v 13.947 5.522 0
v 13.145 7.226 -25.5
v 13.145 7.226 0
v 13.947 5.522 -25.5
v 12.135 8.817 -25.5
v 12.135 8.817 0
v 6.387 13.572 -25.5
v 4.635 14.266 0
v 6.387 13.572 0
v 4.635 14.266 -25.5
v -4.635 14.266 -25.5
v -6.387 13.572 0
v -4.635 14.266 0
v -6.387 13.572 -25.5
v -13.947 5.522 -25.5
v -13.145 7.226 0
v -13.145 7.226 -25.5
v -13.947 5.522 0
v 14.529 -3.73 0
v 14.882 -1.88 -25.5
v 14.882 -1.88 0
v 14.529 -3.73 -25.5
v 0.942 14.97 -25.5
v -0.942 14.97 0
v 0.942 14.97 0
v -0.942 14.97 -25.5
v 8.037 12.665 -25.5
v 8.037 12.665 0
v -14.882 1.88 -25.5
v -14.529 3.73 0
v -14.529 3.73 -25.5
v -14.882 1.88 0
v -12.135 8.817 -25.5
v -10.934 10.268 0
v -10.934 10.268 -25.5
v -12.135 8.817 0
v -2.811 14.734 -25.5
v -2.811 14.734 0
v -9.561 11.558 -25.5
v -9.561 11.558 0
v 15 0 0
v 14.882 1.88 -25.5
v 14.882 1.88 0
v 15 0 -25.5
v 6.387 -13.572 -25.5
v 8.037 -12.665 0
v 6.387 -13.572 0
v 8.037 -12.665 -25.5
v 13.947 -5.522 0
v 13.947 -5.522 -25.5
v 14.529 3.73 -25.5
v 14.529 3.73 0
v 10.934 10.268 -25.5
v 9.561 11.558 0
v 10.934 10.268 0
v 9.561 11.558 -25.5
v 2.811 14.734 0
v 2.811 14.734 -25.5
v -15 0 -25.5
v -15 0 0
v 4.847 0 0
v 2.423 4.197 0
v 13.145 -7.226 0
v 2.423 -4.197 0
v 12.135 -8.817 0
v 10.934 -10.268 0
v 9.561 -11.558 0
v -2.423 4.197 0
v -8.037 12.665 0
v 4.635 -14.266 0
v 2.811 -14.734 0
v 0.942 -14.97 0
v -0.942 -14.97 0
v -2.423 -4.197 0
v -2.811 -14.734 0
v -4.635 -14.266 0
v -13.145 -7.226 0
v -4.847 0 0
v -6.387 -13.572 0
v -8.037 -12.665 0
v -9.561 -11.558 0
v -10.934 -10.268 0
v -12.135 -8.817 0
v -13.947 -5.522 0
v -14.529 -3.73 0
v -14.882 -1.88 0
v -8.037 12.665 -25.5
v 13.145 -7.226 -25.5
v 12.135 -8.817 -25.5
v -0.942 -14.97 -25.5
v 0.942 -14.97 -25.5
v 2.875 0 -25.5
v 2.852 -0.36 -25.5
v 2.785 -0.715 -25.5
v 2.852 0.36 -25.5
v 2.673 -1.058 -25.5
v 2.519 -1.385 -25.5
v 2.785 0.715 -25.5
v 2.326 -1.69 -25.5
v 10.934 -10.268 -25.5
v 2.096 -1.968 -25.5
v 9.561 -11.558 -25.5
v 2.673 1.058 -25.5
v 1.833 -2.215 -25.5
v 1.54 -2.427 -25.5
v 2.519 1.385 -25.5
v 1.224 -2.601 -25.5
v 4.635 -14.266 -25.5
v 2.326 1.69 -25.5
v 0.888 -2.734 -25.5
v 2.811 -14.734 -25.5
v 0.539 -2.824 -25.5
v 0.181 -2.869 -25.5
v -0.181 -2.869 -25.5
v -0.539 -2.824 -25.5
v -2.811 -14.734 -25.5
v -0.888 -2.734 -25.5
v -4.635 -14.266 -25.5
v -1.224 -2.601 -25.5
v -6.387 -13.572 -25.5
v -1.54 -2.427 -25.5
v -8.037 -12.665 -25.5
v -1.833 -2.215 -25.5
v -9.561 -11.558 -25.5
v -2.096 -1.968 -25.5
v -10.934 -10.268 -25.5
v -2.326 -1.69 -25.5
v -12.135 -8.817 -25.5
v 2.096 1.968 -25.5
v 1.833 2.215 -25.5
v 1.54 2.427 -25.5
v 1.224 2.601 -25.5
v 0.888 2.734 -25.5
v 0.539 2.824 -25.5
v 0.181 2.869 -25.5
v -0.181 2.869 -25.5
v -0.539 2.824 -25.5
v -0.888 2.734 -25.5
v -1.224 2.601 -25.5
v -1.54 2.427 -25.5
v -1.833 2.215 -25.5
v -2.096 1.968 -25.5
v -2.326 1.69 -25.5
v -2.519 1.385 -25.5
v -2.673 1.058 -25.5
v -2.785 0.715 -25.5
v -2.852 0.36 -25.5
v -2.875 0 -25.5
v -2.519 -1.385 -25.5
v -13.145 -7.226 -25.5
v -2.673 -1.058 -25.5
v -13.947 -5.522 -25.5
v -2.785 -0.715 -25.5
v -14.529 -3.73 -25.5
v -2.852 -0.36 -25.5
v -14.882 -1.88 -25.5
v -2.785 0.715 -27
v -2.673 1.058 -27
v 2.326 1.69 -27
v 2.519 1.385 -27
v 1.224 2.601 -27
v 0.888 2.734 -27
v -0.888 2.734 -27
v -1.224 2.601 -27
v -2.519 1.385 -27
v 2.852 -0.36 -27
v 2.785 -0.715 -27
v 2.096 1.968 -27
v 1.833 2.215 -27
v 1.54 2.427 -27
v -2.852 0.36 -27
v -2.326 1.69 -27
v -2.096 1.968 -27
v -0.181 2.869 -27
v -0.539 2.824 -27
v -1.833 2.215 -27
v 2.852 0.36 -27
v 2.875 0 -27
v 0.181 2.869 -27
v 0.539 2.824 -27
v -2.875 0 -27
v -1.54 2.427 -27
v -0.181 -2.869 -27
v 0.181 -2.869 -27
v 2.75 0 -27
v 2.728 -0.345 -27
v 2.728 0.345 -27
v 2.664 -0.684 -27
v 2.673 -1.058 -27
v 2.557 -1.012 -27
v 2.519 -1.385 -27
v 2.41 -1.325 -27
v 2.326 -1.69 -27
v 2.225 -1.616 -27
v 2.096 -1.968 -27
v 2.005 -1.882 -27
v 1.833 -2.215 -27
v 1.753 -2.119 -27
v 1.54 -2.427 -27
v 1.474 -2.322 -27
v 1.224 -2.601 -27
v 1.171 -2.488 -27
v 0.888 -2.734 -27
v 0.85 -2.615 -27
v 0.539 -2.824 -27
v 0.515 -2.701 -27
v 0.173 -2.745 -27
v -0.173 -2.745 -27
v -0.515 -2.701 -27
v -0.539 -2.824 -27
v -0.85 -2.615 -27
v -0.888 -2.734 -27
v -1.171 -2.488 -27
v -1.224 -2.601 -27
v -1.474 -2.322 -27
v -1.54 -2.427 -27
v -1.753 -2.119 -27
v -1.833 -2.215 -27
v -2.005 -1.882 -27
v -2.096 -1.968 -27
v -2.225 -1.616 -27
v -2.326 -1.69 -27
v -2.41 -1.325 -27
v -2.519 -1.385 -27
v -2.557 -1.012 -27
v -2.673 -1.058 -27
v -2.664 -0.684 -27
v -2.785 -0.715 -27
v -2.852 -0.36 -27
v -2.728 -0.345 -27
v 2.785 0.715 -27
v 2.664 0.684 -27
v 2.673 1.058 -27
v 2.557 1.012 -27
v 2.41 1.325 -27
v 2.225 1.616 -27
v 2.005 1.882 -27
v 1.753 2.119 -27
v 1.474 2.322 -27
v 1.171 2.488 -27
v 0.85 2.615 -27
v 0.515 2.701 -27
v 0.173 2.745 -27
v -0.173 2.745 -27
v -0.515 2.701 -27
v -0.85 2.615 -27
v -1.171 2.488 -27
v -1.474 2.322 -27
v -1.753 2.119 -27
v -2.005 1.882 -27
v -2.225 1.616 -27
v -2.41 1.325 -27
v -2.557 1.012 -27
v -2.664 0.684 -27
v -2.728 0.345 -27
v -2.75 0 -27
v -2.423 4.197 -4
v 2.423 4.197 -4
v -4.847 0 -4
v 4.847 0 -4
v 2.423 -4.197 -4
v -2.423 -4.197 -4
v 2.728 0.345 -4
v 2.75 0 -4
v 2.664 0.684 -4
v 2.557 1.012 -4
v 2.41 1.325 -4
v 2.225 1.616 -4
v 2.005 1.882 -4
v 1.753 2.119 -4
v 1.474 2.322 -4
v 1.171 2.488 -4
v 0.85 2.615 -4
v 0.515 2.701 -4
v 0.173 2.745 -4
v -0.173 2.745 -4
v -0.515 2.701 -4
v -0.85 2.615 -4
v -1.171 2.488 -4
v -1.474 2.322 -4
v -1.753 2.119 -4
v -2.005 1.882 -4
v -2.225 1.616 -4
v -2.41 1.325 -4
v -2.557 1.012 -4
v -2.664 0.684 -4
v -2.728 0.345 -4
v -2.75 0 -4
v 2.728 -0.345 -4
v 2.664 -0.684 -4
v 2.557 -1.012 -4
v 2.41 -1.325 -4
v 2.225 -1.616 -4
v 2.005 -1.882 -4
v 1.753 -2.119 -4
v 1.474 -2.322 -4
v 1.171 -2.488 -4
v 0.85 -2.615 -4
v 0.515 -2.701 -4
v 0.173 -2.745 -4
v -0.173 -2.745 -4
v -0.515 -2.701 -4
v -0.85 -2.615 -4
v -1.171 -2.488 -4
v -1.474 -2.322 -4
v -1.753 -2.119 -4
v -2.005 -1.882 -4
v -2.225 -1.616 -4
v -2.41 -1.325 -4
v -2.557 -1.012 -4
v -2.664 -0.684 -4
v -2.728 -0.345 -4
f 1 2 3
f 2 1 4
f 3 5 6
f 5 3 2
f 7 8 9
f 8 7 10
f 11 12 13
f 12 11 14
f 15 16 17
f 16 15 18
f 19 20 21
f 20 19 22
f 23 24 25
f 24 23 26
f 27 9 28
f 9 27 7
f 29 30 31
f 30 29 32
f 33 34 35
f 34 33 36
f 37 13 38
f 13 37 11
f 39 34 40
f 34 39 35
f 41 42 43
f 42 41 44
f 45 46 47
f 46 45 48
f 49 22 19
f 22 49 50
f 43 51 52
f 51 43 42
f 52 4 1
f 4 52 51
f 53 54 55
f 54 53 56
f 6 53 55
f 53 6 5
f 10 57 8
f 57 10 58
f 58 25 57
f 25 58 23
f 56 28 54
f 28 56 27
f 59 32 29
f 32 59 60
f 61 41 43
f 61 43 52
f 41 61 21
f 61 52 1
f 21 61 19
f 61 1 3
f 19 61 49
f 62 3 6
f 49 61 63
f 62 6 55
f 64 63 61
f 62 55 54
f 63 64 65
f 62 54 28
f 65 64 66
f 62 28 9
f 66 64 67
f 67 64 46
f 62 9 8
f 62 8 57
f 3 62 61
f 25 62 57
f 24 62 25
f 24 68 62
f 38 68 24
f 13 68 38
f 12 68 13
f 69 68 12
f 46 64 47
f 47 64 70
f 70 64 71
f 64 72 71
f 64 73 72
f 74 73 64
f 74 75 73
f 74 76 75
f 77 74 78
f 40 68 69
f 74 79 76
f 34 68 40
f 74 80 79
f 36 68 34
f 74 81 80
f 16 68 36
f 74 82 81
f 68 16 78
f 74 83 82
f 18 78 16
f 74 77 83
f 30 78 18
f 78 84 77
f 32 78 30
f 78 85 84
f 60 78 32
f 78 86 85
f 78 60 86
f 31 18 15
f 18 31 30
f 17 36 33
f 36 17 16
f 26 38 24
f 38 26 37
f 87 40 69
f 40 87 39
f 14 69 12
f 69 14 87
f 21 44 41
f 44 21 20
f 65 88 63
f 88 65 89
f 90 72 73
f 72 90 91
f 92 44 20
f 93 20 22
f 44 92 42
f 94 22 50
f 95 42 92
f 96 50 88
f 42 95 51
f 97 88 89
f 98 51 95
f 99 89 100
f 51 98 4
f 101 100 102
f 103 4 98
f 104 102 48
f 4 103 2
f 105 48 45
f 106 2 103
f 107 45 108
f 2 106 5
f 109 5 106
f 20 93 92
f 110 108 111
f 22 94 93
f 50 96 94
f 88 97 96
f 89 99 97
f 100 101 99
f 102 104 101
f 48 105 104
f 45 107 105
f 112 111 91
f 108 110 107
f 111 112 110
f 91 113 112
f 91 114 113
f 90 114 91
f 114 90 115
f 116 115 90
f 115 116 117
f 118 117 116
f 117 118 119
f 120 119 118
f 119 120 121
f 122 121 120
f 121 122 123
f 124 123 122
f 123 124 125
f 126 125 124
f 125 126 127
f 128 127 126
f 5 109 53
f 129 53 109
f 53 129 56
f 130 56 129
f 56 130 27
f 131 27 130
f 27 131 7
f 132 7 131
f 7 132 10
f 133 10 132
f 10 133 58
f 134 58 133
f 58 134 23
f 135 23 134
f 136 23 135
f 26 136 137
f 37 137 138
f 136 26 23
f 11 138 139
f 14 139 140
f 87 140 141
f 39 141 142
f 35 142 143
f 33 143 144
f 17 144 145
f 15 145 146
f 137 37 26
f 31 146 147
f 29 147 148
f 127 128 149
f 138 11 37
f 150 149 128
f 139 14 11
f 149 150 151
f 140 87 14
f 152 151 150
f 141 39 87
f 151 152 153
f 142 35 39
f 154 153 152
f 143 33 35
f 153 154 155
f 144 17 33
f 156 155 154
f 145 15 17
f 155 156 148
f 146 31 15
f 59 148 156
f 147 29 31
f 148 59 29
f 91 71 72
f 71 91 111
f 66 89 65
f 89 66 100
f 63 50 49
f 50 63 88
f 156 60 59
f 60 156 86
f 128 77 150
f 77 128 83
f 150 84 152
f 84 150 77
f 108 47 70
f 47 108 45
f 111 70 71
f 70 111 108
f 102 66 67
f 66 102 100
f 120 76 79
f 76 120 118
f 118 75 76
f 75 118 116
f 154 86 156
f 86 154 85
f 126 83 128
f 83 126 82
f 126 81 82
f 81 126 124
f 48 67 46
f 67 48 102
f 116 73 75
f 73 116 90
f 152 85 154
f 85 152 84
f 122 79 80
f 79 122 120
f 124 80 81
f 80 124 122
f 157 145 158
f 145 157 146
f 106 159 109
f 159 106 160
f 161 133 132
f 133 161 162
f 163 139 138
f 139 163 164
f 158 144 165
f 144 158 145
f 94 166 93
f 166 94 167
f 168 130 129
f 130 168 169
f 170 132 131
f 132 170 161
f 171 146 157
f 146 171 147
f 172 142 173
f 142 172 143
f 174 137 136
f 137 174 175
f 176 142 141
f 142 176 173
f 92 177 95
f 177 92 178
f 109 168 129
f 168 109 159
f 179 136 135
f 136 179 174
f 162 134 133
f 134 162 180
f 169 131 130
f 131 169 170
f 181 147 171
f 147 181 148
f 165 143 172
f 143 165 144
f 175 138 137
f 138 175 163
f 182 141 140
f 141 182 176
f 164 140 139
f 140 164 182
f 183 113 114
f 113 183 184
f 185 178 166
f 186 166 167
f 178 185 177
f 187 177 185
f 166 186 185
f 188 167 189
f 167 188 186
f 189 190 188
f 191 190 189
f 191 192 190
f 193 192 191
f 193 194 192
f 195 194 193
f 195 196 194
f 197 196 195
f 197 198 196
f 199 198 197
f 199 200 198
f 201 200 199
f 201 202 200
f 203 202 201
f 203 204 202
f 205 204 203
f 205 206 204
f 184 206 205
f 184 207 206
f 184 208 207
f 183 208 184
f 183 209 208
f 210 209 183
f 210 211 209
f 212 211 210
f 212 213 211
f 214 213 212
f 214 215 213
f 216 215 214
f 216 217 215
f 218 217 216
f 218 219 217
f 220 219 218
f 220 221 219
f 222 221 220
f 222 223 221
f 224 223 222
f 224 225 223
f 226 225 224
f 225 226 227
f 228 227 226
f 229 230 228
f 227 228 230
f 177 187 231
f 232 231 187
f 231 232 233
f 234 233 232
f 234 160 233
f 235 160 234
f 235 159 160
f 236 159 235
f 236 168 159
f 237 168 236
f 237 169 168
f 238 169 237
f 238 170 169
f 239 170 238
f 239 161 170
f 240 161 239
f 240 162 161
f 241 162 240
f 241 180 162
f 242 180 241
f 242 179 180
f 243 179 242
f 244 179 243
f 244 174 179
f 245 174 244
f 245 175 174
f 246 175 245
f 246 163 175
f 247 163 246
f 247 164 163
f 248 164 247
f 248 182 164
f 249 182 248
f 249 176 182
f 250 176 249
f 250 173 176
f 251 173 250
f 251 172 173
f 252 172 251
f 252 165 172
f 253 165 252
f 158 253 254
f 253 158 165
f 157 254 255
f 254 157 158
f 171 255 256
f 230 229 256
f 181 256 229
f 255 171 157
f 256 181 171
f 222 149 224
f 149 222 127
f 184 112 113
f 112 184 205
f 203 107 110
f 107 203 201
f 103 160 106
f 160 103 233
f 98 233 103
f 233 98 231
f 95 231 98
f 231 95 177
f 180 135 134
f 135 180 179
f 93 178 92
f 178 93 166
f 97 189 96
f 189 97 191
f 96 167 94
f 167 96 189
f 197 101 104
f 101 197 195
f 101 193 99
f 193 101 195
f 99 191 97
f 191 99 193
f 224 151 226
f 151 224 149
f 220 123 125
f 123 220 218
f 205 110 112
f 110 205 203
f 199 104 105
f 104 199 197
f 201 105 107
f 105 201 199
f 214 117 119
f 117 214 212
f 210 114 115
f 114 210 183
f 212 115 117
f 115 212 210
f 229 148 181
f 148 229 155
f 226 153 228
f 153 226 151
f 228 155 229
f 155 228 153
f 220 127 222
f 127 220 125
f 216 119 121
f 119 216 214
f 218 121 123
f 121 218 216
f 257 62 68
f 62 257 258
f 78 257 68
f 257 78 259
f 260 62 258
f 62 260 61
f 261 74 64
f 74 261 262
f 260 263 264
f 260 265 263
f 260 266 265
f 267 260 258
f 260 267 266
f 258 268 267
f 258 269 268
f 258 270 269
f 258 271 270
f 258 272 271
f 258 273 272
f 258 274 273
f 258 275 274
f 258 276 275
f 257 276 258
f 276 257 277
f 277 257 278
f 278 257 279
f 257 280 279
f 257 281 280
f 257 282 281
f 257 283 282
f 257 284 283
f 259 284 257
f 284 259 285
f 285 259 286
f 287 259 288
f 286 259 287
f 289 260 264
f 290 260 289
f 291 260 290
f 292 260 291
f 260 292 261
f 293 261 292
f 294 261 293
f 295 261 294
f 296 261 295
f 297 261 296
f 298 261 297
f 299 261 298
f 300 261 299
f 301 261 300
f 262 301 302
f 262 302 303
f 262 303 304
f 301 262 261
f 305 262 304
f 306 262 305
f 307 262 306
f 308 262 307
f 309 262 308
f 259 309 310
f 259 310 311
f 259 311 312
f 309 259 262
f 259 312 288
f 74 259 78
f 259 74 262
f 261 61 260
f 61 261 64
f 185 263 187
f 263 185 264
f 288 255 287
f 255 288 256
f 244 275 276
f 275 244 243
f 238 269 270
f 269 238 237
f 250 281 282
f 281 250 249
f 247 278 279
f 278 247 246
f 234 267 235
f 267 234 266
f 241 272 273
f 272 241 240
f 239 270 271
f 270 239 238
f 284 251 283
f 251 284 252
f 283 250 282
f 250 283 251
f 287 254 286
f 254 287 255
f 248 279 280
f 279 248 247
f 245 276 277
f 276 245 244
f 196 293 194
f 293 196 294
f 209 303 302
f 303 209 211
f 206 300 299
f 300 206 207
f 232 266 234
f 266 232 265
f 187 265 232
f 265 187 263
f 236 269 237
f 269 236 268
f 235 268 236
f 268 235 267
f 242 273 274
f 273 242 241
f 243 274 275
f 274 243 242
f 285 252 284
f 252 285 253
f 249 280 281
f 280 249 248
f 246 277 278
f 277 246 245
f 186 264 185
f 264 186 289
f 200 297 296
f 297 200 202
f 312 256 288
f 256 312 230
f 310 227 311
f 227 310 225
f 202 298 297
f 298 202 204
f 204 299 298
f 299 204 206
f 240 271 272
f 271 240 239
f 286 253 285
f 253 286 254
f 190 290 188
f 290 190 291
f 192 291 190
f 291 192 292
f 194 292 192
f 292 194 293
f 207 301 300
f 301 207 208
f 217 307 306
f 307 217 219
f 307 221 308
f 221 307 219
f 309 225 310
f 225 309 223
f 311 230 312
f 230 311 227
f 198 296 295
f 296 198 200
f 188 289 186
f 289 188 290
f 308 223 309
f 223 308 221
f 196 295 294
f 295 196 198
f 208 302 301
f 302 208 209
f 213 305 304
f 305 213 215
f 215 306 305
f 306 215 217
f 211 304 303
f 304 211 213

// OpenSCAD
$fn = 50;

difference() {
	union() {
		translate(v = [0, 0, -25.5]) {
			cylinder(h = 25.5, r = 15.0);
		}
		#translate(v = [0, 0, -27.0]) {
			cylinder(h = 27, r = 2.875);
		}
	}
	union() {
		translate(v = [0, 0, 0]) {
			rotate(a = [0, 0, 0]) {
				difference() {
					union() {
						translate(v = [0, 0, -4]) {
							linear_extrude(height = 4) {
								polygon(points = [[4.8468, 0.0], [2.4234000000000004, 4.197451927062417], [-2.423399999999999, 4.197451927062417], [-4.8468, 5.935618106107392e-16], [-2.423400000000002, -4.197451927062416], [2.423399999999997, -4.197451927062419]]);
							}
						}
					}
					union();
				}
			}
		}
		#translate(v = [0, 0, -100.0]) {
			cylinder(h = 200, r = 2.75);
		}
	}
}
